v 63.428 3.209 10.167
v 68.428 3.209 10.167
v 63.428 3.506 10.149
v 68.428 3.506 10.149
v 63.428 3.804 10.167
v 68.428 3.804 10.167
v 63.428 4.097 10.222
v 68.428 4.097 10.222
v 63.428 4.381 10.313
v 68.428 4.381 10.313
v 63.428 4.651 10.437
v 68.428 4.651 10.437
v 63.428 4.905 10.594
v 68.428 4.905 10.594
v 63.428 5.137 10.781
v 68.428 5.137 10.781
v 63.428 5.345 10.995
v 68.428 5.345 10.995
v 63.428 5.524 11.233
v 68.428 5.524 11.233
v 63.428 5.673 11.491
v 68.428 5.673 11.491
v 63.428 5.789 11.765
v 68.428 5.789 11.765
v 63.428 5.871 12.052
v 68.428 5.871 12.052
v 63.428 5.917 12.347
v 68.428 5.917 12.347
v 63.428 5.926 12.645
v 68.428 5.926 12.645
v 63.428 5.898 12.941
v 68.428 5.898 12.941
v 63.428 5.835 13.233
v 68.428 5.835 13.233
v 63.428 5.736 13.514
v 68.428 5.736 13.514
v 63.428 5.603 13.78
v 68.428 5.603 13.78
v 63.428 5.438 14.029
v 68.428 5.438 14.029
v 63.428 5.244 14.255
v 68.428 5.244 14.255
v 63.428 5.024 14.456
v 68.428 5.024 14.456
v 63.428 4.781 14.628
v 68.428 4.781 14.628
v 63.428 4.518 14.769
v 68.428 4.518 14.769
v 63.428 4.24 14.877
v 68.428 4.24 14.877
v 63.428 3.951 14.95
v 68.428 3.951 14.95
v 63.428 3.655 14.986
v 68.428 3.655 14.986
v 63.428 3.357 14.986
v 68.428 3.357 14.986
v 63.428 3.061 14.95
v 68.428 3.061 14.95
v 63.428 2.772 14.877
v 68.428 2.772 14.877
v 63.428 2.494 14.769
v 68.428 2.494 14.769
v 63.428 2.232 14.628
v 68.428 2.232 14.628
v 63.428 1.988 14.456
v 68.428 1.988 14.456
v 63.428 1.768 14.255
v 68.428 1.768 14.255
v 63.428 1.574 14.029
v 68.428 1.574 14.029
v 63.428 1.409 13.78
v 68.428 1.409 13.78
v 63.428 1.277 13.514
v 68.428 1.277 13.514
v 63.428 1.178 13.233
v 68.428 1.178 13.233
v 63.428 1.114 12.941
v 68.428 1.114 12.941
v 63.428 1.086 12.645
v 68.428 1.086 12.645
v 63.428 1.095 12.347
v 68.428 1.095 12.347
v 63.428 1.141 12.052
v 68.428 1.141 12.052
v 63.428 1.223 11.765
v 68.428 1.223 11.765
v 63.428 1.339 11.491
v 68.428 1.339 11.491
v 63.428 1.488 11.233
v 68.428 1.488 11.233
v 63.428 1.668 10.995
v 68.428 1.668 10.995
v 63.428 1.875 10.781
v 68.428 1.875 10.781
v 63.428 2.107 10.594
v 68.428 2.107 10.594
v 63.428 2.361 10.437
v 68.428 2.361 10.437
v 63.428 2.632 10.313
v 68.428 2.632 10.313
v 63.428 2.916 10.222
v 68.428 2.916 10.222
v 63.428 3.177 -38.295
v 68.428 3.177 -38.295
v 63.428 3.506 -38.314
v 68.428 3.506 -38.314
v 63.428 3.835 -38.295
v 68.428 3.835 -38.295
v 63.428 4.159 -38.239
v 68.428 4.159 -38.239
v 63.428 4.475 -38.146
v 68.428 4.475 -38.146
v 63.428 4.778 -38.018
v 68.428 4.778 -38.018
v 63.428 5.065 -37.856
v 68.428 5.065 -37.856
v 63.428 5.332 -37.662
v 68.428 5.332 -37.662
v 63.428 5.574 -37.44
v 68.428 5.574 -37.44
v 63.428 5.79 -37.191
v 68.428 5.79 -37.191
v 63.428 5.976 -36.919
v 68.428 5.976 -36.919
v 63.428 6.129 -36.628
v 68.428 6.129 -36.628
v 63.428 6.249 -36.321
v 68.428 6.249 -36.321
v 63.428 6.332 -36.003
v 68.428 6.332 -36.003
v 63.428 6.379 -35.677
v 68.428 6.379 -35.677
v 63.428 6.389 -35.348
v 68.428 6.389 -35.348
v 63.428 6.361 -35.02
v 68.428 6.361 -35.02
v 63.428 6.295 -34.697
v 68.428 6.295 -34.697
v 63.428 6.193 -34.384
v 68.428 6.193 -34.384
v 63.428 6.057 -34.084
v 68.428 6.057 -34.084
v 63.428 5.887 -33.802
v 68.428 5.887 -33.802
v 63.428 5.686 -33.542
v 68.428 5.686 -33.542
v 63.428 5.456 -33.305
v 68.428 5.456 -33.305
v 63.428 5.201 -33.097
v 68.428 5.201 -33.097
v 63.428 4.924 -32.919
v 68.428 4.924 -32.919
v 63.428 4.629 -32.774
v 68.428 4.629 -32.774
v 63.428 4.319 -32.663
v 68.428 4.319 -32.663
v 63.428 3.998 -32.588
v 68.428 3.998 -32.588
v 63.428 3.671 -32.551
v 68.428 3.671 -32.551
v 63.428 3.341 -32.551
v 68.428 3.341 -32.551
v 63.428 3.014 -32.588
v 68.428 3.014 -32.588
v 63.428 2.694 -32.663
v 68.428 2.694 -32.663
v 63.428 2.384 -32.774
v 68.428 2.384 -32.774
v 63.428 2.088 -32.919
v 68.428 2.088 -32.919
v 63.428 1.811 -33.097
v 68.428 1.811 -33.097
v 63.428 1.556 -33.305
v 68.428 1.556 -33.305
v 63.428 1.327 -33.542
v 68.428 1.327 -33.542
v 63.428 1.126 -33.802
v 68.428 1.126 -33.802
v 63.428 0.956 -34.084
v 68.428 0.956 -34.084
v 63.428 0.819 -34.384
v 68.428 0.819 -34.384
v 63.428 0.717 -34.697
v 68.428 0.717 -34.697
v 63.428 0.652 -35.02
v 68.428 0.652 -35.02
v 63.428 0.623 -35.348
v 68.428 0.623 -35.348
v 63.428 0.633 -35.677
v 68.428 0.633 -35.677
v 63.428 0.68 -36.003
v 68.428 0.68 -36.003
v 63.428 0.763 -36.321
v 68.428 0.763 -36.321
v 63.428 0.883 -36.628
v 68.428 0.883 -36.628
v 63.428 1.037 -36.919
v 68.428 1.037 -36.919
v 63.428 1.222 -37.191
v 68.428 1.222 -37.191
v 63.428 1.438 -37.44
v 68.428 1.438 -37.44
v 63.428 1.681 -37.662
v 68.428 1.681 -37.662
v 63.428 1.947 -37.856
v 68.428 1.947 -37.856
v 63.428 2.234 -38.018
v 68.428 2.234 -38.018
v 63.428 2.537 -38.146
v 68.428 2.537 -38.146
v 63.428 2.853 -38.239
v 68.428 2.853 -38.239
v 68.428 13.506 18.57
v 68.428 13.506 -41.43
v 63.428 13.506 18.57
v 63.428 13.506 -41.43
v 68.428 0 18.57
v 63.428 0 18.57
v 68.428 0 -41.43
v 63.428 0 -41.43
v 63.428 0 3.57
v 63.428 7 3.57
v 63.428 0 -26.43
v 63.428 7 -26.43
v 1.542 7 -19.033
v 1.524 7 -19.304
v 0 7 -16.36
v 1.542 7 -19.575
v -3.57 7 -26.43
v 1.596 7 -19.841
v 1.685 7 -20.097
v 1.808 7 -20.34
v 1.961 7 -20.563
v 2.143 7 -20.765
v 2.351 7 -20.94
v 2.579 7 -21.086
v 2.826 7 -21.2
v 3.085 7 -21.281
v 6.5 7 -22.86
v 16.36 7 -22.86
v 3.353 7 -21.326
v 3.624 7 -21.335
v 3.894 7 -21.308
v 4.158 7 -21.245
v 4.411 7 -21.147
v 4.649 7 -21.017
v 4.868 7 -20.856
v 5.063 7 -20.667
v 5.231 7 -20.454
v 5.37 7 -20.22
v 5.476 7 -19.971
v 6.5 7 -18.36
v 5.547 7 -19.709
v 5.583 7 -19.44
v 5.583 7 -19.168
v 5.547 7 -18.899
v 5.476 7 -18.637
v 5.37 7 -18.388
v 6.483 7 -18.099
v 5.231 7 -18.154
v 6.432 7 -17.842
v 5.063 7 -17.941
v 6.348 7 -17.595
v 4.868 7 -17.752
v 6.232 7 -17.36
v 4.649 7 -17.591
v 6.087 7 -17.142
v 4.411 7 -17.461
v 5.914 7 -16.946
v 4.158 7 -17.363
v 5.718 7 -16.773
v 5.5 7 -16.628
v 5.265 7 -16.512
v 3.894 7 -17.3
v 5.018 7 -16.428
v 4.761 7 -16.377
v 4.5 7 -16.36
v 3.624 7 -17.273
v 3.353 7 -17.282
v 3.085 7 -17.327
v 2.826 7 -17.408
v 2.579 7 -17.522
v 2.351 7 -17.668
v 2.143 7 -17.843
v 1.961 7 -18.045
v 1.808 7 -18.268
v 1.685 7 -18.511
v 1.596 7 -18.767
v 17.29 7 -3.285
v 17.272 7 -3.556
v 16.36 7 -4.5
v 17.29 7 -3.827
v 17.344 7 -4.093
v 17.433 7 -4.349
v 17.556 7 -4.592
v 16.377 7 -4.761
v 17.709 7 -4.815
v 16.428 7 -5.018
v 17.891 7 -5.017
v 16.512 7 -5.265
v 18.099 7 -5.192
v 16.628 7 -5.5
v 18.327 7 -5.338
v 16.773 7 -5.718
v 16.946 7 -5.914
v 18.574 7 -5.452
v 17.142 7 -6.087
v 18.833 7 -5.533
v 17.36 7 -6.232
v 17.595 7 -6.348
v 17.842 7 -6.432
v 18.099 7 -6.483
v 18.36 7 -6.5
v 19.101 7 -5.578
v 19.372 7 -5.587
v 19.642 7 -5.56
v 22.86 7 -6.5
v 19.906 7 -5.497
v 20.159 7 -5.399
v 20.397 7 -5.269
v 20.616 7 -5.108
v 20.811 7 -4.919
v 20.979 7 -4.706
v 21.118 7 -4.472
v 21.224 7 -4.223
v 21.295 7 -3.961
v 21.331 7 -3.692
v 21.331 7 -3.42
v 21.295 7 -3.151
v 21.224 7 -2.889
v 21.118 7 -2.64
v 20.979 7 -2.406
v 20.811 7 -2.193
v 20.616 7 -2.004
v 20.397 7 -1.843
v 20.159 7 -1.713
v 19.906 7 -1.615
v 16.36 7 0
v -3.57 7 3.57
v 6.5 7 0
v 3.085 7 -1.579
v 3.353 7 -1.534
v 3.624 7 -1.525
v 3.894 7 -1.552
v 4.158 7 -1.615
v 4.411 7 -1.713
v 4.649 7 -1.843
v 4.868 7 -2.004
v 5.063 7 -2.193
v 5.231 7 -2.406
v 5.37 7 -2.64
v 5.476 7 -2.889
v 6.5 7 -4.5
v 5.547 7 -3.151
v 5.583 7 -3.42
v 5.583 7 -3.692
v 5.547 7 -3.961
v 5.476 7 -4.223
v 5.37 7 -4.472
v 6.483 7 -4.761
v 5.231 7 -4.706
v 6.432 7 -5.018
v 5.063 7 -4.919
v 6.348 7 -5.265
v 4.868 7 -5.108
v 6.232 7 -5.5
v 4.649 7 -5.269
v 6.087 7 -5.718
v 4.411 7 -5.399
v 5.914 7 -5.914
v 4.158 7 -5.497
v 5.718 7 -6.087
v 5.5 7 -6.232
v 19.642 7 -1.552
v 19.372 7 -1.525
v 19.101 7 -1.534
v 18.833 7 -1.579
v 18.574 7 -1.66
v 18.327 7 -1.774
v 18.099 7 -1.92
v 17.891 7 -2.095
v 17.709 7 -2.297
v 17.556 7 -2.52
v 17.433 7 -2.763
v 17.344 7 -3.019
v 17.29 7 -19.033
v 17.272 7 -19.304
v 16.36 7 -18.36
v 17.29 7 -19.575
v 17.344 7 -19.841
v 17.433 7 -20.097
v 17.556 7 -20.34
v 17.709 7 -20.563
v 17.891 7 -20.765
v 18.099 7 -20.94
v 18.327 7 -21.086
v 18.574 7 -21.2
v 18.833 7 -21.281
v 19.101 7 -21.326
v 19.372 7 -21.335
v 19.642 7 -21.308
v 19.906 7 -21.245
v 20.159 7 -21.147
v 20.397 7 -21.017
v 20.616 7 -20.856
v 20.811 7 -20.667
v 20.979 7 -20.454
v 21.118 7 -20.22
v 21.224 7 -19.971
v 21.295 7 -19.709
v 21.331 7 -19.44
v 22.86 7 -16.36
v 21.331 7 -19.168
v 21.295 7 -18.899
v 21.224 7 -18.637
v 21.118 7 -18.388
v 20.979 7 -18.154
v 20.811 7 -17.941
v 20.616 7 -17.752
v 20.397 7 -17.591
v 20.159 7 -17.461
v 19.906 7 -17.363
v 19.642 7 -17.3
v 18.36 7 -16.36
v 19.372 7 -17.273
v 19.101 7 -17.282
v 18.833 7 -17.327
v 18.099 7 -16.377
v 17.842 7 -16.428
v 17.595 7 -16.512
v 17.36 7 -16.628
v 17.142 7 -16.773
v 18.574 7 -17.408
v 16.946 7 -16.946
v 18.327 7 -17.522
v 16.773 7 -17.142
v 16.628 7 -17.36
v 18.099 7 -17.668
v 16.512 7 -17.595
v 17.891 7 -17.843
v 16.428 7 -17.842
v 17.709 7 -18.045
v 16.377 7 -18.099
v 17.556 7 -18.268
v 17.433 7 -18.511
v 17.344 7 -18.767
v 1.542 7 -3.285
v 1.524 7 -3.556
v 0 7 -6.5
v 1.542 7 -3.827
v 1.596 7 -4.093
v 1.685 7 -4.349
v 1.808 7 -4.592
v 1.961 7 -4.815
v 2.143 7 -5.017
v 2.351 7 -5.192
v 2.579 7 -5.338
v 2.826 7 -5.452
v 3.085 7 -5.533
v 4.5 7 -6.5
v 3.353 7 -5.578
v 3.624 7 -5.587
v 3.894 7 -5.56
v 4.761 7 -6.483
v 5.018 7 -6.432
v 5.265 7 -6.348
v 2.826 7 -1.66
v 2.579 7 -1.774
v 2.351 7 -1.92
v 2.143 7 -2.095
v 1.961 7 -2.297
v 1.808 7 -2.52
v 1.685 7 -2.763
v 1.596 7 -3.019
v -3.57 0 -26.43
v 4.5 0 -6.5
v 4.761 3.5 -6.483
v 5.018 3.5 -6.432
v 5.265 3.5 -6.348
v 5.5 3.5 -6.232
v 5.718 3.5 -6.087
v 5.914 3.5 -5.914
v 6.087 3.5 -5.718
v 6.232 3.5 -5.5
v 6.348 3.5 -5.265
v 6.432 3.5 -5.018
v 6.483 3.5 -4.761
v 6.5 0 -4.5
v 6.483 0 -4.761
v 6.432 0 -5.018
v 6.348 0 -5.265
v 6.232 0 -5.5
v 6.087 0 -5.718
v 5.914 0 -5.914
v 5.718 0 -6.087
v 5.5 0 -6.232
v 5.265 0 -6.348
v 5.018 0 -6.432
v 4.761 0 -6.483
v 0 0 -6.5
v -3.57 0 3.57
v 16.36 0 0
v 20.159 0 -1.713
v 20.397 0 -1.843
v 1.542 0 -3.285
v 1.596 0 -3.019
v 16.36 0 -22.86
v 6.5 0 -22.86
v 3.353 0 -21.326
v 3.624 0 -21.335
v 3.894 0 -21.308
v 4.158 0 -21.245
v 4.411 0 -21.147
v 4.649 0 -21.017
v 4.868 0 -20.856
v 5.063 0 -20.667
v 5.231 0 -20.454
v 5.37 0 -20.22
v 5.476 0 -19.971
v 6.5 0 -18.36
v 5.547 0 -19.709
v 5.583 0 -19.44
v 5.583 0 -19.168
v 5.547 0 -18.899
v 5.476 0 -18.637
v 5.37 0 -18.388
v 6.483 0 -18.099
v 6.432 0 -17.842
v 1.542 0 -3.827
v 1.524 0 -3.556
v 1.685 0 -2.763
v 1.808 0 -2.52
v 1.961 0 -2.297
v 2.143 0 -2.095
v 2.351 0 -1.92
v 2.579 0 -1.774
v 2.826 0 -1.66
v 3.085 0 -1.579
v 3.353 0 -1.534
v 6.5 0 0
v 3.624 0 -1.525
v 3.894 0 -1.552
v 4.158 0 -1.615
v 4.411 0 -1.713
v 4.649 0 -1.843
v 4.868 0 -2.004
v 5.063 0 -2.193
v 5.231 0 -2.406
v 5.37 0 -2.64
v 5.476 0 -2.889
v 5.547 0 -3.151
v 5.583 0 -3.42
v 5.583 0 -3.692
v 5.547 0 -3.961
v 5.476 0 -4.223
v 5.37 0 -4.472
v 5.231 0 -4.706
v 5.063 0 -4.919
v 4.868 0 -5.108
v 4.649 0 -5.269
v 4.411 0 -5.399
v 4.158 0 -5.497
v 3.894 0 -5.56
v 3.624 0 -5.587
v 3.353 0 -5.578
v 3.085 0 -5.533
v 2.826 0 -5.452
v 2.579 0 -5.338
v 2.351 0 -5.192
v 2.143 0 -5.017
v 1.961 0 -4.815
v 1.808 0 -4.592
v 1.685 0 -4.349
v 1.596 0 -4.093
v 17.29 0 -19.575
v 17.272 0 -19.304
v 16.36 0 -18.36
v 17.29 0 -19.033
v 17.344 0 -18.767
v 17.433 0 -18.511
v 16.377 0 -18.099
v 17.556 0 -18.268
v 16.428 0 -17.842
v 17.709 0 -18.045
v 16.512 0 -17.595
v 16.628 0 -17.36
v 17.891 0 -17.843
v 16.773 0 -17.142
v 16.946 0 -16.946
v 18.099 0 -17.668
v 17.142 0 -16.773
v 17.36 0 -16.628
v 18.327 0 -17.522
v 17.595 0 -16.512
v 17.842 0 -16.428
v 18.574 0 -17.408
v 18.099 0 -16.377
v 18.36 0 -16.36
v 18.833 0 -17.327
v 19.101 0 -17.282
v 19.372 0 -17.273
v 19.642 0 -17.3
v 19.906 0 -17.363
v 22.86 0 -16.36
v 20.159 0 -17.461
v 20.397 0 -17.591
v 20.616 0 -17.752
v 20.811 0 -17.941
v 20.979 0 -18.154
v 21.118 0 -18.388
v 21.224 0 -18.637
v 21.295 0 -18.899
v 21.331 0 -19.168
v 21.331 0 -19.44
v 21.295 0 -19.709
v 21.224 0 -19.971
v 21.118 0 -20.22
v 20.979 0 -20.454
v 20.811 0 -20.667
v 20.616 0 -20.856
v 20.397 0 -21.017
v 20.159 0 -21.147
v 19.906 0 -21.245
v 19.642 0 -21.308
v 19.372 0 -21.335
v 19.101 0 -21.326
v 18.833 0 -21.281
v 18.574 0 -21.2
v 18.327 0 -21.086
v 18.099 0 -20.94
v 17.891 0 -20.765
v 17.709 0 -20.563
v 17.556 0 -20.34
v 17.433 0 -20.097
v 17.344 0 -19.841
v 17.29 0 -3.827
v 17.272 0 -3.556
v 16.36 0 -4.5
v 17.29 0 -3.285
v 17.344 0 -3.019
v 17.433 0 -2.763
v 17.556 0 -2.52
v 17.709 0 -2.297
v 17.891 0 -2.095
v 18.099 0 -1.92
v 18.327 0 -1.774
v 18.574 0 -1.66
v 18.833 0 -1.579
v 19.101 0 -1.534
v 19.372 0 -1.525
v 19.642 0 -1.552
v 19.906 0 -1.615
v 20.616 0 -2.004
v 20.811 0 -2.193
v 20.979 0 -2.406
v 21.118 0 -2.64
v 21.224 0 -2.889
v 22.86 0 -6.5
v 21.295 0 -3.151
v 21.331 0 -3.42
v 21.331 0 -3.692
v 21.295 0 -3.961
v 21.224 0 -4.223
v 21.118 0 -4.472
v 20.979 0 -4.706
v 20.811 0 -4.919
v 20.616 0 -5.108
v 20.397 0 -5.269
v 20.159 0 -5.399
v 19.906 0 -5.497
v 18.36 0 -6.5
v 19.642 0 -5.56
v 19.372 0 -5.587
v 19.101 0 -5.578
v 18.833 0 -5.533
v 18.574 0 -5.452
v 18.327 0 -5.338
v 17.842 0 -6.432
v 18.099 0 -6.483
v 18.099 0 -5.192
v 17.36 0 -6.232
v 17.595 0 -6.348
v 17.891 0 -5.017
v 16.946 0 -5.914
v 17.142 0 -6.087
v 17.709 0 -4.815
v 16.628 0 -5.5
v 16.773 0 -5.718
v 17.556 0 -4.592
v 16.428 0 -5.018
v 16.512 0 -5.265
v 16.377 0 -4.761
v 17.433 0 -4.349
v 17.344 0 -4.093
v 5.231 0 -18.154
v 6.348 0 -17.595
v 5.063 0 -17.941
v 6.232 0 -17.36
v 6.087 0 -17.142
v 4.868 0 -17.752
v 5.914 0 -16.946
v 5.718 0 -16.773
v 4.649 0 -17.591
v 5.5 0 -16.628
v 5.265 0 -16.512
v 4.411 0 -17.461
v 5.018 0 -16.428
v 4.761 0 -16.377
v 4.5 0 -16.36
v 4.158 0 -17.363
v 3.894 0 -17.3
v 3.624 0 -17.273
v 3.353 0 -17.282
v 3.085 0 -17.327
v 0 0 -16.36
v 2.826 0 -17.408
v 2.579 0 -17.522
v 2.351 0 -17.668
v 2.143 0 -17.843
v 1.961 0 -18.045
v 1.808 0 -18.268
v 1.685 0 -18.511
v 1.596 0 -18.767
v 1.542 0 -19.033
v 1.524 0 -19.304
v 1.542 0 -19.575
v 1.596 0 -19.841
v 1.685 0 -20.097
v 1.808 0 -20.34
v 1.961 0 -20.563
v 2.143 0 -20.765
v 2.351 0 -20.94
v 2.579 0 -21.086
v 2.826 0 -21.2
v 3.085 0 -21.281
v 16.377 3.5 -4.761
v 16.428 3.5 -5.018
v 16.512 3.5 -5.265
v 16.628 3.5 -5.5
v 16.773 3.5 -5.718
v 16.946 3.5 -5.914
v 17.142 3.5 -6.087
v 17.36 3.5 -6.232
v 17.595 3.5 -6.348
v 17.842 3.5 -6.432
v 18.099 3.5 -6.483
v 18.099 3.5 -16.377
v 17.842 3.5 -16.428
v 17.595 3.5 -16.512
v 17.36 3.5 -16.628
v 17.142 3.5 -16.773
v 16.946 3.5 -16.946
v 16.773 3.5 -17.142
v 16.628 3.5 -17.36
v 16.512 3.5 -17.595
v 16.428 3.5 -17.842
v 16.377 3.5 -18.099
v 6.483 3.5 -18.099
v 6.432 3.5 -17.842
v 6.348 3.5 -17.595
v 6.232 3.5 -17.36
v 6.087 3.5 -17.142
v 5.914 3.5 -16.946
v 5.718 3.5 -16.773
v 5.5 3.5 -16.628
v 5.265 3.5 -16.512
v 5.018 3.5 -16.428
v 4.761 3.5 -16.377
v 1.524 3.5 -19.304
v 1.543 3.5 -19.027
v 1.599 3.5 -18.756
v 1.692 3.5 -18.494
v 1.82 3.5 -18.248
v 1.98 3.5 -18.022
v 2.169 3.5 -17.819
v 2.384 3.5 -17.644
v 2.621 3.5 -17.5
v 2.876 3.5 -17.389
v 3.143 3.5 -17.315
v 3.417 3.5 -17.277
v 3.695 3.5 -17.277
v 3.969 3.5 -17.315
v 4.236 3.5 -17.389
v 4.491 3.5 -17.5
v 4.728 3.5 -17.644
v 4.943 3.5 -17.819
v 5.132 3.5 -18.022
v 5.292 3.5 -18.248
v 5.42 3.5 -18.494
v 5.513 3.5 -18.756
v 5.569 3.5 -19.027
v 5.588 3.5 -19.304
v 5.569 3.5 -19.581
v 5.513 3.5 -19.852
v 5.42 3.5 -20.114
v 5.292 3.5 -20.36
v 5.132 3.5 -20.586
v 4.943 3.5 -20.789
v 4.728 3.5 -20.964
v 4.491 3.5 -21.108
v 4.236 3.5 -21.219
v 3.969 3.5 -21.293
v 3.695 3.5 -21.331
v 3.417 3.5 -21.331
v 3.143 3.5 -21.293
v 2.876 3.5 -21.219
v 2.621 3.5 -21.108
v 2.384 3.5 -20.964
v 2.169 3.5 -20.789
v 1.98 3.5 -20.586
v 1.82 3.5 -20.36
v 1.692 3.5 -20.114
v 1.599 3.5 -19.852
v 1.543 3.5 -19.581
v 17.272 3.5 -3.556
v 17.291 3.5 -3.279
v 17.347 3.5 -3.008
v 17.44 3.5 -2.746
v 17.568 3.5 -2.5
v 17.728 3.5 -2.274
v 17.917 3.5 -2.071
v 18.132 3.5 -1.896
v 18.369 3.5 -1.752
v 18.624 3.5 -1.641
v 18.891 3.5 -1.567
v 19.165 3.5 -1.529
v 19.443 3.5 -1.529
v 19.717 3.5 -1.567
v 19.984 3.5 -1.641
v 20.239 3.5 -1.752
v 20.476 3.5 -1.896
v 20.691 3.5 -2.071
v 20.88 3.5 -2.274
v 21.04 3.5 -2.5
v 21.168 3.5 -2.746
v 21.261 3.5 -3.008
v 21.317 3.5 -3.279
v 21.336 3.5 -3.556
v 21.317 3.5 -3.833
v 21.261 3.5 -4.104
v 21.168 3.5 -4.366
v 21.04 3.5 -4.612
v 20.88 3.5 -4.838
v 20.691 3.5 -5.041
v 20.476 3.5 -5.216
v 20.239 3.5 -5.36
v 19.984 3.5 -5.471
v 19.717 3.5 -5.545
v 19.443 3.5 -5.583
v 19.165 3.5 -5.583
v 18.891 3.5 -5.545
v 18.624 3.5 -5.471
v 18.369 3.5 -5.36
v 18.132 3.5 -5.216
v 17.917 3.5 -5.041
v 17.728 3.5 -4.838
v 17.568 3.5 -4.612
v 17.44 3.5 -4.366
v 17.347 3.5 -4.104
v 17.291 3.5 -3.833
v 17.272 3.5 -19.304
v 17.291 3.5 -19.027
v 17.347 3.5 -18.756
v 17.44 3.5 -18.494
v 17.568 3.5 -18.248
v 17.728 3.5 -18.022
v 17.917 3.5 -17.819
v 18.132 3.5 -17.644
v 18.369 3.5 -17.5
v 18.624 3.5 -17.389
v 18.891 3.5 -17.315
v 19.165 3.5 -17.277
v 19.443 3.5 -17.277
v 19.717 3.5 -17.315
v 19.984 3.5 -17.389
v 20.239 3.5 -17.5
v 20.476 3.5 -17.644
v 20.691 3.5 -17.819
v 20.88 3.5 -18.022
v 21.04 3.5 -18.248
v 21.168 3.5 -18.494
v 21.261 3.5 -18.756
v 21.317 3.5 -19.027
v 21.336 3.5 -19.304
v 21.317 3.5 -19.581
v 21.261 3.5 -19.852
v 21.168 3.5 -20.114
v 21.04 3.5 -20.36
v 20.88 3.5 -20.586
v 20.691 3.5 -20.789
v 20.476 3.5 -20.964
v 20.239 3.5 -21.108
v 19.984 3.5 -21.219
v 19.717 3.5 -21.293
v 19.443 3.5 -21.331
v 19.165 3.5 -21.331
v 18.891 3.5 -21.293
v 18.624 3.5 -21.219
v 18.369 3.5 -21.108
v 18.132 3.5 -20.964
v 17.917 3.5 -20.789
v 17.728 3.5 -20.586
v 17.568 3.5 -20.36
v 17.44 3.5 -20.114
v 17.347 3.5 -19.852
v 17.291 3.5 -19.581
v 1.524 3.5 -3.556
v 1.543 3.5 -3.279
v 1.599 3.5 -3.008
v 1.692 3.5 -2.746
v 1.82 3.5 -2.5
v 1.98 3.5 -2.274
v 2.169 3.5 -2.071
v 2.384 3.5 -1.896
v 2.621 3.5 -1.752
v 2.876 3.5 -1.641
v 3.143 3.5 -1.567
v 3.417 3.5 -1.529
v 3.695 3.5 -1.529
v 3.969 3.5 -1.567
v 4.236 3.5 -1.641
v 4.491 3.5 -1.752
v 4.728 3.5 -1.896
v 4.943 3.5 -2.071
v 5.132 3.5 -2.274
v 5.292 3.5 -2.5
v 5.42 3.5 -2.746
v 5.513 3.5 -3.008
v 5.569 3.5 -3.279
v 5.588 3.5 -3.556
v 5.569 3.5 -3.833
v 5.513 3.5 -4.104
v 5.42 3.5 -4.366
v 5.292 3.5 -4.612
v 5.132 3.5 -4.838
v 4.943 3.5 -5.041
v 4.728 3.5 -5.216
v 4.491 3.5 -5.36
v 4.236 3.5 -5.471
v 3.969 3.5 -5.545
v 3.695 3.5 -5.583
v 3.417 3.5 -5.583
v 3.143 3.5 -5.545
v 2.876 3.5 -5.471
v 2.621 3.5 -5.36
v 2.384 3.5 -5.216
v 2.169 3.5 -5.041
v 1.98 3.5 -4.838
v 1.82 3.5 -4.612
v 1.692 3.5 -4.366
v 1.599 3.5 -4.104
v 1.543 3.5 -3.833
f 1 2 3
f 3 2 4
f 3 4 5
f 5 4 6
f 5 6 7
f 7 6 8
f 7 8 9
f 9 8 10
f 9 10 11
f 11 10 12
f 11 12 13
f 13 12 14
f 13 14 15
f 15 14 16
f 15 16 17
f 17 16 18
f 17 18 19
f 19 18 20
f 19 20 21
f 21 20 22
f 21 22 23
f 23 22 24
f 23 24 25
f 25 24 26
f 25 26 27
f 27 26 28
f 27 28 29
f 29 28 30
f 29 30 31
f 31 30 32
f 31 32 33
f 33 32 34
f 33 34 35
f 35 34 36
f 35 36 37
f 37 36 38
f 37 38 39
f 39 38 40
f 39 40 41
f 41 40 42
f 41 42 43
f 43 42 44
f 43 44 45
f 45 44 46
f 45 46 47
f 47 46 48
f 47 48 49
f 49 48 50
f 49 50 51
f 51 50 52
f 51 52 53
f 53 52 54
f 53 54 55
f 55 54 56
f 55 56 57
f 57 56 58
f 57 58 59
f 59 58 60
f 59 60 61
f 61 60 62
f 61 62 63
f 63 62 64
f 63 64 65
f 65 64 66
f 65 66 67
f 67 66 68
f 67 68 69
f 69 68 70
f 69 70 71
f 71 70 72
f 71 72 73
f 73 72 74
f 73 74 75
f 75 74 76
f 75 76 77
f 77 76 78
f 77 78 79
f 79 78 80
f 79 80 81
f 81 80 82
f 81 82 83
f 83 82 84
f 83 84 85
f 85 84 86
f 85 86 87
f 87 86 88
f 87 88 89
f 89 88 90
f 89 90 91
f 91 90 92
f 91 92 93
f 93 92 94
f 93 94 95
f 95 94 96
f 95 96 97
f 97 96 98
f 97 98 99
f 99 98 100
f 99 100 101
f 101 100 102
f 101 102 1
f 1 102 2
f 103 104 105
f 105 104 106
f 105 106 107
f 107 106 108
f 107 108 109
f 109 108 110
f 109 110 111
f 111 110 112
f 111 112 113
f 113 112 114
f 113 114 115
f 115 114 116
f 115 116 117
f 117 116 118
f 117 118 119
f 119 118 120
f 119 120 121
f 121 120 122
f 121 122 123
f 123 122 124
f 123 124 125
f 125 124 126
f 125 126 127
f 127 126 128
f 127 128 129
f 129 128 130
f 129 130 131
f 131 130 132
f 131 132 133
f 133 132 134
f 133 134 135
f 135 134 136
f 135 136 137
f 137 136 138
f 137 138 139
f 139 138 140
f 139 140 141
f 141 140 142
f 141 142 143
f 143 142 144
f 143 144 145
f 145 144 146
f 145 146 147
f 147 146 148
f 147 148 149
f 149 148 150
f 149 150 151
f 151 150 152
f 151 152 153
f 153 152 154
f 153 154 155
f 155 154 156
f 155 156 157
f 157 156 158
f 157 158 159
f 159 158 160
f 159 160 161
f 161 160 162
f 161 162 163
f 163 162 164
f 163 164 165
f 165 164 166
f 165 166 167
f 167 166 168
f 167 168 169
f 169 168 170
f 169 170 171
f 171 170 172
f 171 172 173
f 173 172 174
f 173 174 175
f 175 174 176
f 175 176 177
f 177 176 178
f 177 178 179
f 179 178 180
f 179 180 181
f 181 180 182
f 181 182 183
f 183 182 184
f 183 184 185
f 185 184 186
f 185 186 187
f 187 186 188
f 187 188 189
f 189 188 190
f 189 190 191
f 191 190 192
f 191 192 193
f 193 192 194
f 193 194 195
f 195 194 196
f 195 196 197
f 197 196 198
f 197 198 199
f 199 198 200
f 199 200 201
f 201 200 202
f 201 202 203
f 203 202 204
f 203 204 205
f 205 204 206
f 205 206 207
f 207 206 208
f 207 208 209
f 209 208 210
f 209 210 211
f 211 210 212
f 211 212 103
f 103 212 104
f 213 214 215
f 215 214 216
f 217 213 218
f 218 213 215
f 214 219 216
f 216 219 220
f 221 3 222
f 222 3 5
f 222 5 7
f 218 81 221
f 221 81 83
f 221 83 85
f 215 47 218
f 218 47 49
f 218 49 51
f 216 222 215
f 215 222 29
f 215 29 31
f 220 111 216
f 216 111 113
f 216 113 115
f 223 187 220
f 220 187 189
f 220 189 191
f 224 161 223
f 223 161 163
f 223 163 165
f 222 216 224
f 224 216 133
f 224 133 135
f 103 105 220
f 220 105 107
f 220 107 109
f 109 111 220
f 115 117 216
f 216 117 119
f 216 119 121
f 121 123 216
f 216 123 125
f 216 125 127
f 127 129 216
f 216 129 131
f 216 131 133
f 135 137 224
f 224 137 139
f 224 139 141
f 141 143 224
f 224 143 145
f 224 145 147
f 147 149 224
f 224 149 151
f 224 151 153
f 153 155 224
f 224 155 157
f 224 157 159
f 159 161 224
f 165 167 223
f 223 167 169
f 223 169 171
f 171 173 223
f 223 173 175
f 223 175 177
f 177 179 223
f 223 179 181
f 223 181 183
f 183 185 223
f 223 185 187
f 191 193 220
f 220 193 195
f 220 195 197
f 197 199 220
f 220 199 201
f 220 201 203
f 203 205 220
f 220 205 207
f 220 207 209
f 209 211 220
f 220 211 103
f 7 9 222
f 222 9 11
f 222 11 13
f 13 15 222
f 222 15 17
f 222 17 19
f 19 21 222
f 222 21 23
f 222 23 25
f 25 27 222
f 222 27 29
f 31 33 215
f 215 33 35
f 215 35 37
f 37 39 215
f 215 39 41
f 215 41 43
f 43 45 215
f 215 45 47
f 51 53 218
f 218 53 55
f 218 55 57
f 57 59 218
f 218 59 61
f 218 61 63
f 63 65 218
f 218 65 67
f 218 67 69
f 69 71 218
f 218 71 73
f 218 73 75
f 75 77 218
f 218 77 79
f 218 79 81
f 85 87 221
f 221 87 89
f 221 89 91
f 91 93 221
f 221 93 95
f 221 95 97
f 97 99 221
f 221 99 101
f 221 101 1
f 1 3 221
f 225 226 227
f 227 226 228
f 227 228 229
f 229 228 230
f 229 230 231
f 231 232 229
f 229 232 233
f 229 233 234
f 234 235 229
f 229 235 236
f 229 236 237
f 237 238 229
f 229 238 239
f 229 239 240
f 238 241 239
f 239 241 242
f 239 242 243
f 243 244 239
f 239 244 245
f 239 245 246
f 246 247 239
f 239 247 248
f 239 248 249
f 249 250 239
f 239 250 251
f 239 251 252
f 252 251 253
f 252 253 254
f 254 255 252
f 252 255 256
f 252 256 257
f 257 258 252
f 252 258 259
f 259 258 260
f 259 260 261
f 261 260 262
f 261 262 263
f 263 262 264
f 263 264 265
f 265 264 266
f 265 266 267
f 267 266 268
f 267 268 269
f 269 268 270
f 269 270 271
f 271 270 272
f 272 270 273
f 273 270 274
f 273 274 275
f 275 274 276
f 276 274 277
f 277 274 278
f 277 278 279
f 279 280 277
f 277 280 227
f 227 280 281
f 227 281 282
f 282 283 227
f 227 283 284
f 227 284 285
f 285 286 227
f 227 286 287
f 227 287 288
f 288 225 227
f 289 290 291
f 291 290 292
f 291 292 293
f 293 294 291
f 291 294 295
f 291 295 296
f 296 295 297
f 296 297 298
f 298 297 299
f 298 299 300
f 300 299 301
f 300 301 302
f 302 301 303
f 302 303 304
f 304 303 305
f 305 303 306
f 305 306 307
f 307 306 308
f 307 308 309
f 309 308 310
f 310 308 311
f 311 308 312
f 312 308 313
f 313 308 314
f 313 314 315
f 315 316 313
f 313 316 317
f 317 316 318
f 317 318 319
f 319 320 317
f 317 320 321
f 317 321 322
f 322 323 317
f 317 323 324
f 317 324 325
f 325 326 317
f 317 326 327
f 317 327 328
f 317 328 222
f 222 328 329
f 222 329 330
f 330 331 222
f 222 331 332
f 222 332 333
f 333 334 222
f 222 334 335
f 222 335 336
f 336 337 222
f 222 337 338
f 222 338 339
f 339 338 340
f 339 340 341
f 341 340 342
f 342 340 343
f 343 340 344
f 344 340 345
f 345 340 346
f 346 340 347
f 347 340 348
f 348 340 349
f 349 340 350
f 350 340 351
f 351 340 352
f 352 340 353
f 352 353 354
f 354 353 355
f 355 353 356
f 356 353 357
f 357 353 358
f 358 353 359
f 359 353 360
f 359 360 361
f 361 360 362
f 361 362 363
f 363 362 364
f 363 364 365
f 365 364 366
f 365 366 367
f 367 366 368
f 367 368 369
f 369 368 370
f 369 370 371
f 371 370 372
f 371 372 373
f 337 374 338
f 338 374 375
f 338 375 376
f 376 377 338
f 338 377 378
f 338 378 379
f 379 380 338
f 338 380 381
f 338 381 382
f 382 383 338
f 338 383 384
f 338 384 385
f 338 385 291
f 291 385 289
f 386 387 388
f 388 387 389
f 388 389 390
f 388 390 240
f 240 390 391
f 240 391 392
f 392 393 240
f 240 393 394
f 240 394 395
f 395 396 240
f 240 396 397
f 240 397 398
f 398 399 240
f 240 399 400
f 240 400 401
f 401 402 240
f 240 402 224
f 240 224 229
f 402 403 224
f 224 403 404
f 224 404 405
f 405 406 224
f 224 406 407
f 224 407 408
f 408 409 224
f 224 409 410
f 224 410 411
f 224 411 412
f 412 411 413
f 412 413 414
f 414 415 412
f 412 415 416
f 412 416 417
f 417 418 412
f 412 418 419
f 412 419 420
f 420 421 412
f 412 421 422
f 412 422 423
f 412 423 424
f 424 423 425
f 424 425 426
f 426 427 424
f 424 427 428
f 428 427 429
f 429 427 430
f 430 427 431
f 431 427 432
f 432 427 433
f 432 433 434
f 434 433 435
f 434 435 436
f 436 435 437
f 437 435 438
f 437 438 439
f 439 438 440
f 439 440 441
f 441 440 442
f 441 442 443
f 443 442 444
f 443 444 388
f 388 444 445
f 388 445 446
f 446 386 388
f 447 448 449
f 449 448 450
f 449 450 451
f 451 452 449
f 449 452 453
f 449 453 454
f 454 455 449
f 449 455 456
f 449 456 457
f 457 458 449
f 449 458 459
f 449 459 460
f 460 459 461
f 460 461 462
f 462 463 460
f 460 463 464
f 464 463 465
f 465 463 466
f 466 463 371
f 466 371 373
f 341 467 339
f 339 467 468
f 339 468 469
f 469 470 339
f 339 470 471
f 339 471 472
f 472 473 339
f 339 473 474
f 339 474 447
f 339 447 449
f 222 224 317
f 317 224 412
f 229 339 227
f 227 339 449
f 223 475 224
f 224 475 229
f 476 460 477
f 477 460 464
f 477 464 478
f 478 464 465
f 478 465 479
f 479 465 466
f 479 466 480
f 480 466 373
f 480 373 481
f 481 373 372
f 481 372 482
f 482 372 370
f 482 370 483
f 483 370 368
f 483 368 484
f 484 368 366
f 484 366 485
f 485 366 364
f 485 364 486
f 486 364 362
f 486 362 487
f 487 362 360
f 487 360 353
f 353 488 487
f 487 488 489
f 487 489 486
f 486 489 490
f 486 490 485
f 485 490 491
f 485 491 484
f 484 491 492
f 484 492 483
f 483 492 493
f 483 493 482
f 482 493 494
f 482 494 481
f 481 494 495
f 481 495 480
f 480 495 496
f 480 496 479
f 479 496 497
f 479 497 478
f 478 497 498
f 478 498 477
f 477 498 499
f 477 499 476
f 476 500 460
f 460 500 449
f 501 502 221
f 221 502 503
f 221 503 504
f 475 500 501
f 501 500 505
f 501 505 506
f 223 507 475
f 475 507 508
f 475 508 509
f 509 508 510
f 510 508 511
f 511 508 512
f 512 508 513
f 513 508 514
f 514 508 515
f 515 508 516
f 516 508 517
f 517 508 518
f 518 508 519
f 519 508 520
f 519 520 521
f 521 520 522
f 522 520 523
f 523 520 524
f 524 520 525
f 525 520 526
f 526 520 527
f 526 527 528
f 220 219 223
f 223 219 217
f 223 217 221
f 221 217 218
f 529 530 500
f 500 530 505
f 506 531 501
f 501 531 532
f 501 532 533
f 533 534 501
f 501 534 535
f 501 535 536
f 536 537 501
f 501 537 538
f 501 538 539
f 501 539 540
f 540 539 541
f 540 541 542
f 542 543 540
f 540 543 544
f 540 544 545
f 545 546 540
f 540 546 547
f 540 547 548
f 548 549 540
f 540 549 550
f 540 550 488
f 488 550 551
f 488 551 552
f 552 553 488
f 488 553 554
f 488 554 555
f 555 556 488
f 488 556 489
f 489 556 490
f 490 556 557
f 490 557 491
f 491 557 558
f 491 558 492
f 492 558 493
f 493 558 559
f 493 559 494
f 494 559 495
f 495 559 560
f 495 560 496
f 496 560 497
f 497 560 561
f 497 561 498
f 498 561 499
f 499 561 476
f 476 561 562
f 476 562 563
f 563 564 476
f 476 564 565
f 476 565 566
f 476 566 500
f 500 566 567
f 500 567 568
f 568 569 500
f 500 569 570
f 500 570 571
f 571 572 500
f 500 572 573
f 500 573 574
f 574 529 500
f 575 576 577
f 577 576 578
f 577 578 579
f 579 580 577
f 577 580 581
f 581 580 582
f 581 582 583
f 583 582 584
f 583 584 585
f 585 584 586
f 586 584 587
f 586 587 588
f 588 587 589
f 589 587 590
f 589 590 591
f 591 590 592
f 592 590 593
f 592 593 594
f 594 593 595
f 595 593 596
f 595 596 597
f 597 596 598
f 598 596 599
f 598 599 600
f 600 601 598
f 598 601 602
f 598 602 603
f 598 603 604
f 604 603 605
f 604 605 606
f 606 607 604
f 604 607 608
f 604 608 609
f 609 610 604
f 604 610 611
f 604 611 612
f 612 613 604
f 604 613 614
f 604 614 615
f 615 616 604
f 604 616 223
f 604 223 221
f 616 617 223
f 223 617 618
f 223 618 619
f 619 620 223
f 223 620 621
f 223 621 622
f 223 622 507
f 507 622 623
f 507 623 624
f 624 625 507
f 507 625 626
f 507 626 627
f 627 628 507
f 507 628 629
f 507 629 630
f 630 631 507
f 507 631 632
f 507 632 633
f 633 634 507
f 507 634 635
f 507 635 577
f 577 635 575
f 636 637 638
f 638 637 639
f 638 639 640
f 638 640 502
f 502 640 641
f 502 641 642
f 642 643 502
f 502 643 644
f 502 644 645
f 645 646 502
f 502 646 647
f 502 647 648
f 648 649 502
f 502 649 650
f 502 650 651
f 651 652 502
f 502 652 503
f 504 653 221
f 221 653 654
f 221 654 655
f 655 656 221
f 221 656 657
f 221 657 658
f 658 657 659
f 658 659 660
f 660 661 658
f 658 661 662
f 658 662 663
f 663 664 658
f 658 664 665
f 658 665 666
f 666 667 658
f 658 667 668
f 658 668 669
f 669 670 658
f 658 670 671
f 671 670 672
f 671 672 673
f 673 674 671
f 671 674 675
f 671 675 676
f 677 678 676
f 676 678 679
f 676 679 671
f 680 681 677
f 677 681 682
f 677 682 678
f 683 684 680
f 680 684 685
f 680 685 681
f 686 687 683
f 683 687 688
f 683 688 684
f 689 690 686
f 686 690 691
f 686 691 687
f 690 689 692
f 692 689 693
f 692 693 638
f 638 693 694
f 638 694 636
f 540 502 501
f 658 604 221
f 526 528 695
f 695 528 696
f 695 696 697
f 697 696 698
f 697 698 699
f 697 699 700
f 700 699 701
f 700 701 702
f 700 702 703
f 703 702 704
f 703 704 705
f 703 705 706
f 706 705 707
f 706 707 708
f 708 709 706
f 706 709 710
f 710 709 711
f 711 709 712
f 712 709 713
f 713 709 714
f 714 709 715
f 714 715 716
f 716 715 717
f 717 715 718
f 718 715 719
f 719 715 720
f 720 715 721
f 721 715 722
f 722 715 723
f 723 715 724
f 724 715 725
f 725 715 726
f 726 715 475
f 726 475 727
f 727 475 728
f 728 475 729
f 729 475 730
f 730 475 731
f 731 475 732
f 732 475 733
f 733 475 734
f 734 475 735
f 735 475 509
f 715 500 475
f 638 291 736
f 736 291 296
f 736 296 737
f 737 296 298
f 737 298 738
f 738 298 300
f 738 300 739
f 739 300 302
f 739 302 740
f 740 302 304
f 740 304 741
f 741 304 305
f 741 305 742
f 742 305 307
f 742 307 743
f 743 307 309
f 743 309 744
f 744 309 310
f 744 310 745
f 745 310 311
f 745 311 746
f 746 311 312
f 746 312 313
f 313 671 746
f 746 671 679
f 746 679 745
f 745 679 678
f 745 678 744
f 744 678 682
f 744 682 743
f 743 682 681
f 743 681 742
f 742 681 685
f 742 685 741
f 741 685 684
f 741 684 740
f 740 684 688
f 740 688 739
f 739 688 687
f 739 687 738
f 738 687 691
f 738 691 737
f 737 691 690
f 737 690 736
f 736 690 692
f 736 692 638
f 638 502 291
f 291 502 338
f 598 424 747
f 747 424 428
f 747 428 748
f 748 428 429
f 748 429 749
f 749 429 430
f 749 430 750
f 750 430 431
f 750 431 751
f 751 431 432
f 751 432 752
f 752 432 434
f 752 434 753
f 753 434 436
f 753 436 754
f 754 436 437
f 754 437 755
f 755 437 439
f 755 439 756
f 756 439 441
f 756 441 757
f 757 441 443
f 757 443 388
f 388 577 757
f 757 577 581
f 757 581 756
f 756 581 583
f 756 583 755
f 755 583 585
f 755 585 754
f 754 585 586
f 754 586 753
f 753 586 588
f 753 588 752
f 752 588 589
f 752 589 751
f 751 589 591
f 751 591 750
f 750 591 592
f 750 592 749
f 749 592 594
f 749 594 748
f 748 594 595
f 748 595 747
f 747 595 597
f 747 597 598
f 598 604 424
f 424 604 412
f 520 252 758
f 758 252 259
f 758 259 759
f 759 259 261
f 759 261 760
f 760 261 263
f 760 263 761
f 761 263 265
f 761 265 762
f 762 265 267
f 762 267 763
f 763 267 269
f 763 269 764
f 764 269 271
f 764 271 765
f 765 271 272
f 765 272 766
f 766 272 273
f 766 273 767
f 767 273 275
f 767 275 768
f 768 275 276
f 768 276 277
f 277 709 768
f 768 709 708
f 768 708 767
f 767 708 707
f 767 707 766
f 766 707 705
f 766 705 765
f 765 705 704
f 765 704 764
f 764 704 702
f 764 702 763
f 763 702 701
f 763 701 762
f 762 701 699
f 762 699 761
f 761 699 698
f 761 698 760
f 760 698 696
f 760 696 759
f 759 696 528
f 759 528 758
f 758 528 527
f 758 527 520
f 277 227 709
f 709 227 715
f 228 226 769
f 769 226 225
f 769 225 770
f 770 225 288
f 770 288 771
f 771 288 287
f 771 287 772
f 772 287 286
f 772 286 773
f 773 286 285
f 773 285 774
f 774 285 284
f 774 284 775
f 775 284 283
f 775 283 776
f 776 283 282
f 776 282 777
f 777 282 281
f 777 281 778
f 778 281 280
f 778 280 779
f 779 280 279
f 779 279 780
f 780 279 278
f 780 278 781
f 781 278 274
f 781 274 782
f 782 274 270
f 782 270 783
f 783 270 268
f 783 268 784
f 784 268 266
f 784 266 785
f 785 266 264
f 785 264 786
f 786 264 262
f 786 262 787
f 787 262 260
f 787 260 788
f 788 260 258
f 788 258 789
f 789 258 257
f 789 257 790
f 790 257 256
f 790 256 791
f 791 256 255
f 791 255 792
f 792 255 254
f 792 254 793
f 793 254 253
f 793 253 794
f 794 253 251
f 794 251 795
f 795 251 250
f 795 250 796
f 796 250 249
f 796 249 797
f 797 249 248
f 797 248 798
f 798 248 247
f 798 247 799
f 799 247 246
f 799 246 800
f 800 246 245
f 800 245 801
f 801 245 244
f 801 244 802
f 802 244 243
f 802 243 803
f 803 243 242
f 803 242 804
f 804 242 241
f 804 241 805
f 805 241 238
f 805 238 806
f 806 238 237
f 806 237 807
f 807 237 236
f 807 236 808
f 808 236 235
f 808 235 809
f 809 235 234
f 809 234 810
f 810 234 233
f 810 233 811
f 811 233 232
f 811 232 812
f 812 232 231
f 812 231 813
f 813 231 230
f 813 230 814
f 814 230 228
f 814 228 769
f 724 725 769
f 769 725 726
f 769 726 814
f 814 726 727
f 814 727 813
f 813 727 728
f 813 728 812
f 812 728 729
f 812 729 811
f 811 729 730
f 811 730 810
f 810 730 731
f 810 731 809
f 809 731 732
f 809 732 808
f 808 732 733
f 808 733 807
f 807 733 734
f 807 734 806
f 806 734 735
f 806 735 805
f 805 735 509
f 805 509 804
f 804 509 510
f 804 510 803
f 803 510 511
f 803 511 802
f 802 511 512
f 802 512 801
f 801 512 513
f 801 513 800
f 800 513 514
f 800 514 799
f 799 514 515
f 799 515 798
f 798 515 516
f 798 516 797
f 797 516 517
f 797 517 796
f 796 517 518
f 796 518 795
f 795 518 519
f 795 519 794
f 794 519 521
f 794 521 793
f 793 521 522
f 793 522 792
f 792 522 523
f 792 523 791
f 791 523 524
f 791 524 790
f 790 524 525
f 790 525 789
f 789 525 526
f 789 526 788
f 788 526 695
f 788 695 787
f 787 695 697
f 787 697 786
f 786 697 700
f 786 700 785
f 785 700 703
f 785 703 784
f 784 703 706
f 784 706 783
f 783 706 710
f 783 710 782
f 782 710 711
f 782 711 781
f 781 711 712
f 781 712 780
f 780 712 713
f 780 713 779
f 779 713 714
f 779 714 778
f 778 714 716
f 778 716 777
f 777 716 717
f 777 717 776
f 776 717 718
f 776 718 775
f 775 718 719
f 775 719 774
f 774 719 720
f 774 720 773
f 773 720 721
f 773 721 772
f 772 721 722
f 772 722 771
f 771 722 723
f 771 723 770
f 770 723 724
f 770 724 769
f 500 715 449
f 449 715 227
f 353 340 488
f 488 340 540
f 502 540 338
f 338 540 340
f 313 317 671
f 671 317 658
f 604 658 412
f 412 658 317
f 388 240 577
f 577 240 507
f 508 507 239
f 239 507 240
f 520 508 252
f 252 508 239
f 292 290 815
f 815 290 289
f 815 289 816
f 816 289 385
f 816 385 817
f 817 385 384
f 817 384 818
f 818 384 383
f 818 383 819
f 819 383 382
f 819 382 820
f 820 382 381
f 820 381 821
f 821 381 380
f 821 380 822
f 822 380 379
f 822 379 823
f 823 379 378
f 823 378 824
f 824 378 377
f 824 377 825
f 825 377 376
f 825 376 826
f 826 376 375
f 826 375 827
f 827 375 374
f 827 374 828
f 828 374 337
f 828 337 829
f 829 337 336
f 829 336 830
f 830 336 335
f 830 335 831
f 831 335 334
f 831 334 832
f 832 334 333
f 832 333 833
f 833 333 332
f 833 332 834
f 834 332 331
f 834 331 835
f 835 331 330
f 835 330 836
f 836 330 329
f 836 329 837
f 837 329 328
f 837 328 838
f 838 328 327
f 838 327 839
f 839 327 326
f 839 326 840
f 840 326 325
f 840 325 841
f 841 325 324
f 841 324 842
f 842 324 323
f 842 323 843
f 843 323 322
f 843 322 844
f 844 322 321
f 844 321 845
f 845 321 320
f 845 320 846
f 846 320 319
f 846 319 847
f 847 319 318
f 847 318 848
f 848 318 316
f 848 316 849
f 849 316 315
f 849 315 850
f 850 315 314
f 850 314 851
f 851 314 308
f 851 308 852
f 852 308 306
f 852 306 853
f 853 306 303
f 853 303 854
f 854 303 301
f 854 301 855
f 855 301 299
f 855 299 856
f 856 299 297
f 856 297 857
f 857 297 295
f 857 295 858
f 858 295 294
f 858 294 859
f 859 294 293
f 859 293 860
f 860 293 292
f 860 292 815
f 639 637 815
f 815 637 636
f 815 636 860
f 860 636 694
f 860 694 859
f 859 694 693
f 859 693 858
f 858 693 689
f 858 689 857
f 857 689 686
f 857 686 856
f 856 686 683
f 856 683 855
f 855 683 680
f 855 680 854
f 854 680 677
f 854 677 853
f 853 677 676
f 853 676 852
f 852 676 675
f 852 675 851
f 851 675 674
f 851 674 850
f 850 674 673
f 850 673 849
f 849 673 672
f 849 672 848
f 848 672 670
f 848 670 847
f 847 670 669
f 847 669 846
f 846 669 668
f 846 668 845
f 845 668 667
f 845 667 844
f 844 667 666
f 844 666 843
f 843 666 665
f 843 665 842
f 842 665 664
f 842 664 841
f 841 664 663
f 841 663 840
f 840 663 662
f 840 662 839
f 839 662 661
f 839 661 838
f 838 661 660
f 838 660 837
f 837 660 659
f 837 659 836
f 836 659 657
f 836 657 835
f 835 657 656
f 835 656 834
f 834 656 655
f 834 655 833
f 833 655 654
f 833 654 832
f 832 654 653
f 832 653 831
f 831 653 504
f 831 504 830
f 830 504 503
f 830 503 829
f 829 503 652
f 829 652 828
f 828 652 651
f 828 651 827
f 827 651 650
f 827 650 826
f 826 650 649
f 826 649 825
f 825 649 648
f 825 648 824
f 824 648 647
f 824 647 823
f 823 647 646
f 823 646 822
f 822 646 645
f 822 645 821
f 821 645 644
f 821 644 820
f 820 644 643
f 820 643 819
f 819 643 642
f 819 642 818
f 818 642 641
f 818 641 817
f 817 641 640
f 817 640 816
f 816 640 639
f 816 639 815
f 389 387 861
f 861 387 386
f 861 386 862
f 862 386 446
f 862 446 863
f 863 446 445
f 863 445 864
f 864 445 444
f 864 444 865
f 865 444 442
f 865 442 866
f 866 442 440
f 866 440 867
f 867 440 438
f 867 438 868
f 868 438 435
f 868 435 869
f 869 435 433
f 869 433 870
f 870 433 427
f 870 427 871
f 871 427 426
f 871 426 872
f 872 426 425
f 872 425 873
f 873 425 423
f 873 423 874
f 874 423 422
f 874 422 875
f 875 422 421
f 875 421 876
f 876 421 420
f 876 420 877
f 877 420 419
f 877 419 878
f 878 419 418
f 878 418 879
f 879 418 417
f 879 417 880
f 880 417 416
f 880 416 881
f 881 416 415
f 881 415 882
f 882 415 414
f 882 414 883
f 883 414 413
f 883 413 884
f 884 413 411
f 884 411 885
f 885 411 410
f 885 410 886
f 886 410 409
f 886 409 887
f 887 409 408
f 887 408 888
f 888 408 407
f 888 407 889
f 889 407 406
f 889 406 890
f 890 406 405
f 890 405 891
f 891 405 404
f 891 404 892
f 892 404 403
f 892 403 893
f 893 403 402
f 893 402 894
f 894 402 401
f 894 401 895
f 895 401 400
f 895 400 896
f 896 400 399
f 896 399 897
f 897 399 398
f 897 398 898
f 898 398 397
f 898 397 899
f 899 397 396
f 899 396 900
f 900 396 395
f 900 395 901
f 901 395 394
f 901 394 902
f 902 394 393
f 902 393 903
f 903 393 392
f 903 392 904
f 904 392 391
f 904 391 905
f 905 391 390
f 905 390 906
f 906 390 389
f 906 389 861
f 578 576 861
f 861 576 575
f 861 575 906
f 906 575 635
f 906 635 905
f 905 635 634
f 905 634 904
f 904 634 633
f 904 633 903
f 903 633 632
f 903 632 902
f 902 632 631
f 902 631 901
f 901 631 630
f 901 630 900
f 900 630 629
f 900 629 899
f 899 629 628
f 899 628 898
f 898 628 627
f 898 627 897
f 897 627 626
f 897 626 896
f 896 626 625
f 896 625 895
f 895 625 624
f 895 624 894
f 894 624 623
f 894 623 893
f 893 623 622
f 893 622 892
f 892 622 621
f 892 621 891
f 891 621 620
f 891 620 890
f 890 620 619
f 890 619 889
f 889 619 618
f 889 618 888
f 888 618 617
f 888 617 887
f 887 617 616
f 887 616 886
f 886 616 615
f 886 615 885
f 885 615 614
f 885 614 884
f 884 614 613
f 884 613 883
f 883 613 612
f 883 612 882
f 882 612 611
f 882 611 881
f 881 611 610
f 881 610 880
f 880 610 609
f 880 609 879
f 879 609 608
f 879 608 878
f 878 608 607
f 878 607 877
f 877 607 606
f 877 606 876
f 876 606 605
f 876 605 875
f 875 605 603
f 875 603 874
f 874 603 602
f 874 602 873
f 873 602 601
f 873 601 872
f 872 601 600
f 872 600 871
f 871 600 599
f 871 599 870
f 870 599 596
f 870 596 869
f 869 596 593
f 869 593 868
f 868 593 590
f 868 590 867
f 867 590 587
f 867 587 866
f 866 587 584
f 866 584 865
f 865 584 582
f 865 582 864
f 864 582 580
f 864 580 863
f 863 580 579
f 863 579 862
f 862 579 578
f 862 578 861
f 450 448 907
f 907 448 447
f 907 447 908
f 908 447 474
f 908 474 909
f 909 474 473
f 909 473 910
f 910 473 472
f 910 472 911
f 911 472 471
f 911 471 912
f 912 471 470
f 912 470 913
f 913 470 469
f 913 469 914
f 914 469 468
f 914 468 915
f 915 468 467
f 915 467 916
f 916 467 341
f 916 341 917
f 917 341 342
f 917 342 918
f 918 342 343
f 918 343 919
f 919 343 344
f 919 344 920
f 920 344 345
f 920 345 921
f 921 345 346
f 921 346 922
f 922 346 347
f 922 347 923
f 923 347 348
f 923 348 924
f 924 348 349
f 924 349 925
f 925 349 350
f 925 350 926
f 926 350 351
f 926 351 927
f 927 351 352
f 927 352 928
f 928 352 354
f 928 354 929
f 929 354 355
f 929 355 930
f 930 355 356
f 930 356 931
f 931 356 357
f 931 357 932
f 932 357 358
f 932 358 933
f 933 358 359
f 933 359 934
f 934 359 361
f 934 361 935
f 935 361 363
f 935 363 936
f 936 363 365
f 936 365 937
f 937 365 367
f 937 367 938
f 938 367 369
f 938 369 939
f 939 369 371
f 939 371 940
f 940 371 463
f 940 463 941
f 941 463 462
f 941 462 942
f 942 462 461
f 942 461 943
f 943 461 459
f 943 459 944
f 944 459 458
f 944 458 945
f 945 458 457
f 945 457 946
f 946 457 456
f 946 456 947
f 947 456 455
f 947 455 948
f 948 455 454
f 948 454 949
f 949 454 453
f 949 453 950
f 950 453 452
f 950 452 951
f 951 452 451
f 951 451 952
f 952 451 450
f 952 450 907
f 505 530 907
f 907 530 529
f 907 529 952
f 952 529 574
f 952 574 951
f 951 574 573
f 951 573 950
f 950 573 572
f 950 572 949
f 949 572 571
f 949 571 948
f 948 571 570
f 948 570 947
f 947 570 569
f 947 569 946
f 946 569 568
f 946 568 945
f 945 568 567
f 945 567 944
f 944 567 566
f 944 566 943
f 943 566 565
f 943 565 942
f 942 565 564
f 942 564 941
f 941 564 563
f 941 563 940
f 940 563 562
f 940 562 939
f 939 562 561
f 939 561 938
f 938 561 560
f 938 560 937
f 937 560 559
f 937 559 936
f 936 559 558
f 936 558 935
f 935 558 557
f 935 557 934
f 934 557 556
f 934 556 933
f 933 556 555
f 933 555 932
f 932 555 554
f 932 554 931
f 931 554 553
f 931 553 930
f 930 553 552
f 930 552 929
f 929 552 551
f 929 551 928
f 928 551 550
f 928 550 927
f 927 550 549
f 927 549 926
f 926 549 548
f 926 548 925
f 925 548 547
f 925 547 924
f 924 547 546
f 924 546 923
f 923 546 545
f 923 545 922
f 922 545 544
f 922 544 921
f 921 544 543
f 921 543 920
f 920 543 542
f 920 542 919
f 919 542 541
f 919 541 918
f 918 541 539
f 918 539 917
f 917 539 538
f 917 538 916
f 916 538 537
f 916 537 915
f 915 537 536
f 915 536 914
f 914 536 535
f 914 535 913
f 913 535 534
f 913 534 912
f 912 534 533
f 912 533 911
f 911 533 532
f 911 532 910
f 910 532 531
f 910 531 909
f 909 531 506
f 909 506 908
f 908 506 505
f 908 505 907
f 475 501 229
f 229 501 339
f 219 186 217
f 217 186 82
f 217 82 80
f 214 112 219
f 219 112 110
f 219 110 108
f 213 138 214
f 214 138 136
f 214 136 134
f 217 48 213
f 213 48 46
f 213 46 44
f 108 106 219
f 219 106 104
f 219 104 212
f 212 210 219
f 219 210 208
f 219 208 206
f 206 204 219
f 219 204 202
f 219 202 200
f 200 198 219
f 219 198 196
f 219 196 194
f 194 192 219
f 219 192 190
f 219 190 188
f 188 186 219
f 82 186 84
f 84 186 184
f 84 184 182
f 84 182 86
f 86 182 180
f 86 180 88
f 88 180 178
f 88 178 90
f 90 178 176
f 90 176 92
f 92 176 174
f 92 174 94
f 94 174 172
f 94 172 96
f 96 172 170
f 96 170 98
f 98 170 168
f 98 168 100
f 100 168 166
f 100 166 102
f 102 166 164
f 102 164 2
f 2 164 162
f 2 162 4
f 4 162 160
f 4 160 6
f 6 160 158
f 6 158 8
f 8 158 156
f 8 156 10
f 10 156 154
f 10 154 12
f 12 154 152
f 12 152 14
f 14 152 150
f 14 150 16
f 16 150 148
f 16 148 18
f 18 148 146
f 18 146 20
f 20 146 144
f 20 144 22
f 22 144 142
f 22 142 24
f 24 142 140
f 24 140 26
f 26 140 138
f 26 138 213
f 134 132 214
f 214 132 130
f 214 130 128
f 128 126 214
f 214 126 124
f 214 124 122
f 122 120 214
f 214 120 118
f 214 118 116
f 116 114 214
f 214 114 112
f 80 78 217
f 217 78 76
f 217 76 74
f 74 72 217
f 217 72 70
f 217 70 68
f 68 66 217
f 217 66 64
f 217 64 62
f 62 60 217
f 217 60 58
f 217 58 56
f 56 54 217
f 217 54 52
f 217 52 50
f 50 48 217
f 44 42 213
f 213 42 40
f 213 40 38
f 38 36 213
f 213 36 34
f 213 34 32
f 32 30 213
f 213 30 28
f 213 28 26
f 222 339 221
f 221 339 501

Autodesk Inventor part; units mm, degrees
ref_plane "YZ Plane" through (0, 0, 0) normal (1, 0, 0) x (0, 1, 0)
ref_plane "XZ Plane" through (0, 0, 0) normal (0, 1, 0) x (-1, 0, 0)
ref_plane "XY Plane" through (0, 0, 0) normal (0, 0, 1) x (1, 0, 0)
sketch "Sketch1" plane through (0, 0, 0) normal (0, 1, 0) x (-1, 0, 0)
  line L0 (0, 0) -> (-22.86, 0)
  line L1 (-22.86, 0) -> (-22.86, -22.86)
  line L2 (-22.86, -22.86) -> (0, -22.86)
  line L3 (0, -22.86) -> (0, 0)
  line L4 (-22.86, -22.86) -> (-19.304, -22.86)
  line L5 (-19.304, -22.86) -> (-19.304, -19.304) construction
  line L6 (-19.304, -19.304) -> (-22.86, -19.304) construction
  line L7 (-22.86, -19.304) -> (-22.86, -22.86)
  line L8 (0, -22.86) -> (-3.556, -22.86)
  line L9 (-3.556, -22.86) -> (-3.556, -19.304) construction
  line L10 (-3.556, -19.304) -> (0, -19.304) construction
  line L11 (0, -19.304) -> (0, -22.86)
  line L12 (0, 0) -> (-3.556, 0)
  line L13 (-3.556, 0) -> (-3.556, -3.556) construction
  line L14 (-3.556, -3.556) -> (0, -3.556) construction
  line L15 (0, -3.556) -> (0, 0)
  line L16 (-22.86, 0) -> (-19.304, 0)
  line L17 (-19.304, 0) -> (-19.304, -3.556) construction
  line L18 (-19.304, -3.556) -> (-22.86, -3.556) construction
  line L19 (-22.86, -3.556) -> (-22.86, 0)
  circle A0 centre (-3.556, -19.304) radius 2.032
  circle A1 centre (-19.304, -19.304) radius 2.032
  circle A2 centre (-19.304, -3.556) radius 2.032
  circle A3 centre (-3.556, -3.556) radius 2.032
  line L20 (3.57, -26.43) -> (-26.43, -26.43)
  line L21 (-26.43, -26.43) -> (-26.43, 3.57)
  line L22 (-26.43, 3.57) -> (3.57, 3.57)
  line L23 (3.57, 3.57) -> (3.57, -26.43)
  line L24 (0, 0) -> (-6.5, 0)
  line L25 (-6.5, 0) -> (-6.5, -6.5)
  line L26 (-6.5, -6.5) -> (0, -6.5)
  line L27 (0, -6.5) -> (0, 0)
  line L28 (0, -22.86) -> (-6.5, -22.86)
  line L29 (-6.5, -22.86) -> (-6.5, -16.36)
  line L30 (-6.5, -16.36) -> (0, -16.36)
  line L31 (0, -16.36) -> (0, -22.86)
  line L32 (-22.86, -22.86) -> (-16.36, -22.86)
  line L33 (-16.36, -22.86) -> (-16.36, -16.36)
  line L34 (-16.36, -16.36) -> (-22.86, -16.36)
  line L35 (-22.86, -16.36) -> (-22.86, -22.86)
  line L36 (-22.86, 0) -> (-16.36, 0)
  line L37 (-16.36, 0) -> (-16.36, -6.5)
  line L38 (-16.36, -6.5) -> (-22.86, -6.5)
  line L39 (-22.86, -6.5) -> (-22.86, 0)
  line L40 (-26.43, 3.57) -> (-68.4276, 3.57)
  line L41 (-68.4276, 3.57) -> (-68.4276, -26.43)
  line L42 (-68.4276, -26.43) -> (-26.43, -26.43)
  line L43 (-26.43, -26.43) -> (-26.43, 3.57)
  circle A4 centre (-11.43, -11.43) radius 5
  point P0 (0, -16.36)
  point P1 (0, -6.5)
  dimension "d2" = 22.86
  dimension "d3" = 22.86
  dimension "d4" = 3.556
  dimension "d5" = 3.556
  dimension "d6" = 3.556
  dimension "d7" = 3.556
  dimension "d8" = 3.556
  dimension "d9" = 3.556
  dimension "d10" = 3.556
  dimension "d11" = 3.556
  dimension "d12" = 4.064
  dimension "d13" = 4.064
  dimension "d14" = 4.064
  dimension "d15" = 4.064
  dimension "d16" = 30
  dimension "d17" = 30
  dimension "d18" = 3.57
  dimension "d19" = 3.57
  dimension "d20" = 6.5
  dimension "d21" = 6.5
  dimension "d22" = 6.5
  dimension "d23" = 6.5
  dimension "d24" = 6.5
  dimension "d25" = 6.5
  dimension "d26" = 6.5
  dimension "d31" = 10
  dimension "d32" = 15
  dimension "d33" = 15
  dimension "d34" = 56.9976
extrude "Extrusion1" add sketch "Sketch1" along normal blind 7 contours L3 L26 L25 L0 | L37 L38 L1 L0 | L3 L2 L29 L30 | L34 L33 L2 L1 | L20 L21 L22 L23 | L42 L41 L40 L21
fillet "Fillet1" radius 2 4 edges at (6.5, 3.5, -16.36) (16.36, 3.5, -16.36) (16.36, 3.5, -6.5) (6.5, 3.5, -6.5)
sketch "Sketch4" plane through (68.4276, 0, 3.57) normal (1, 0, 0) x (0, 0, -1)
  line L0 (-15, 13.5061) -> (45, 13.5061)
  line L1 (45, 13.5061) -> (45, -6.4939)
  line L2 (45, -6.4939) -> (-15, -6.4939)
  line L3 (-15, -6.4939) -> (-15, 13.5061)
  line L4 (-15, 13.5061) -> (45, -6.4939) construction
  line L5 (45, 13.5061) -> (-15, -6.4939) construction
  line L6 (30, 0) -> (30, 7) projected
  line L7 (15, 3.5061) -> (39, 3.5061)
  circle A0 centre (39, 3.5061) radius 2.8838
  circle A1 centre (-9, 3.5061) radius 2.421
  line L8 (-15, 0) -> (45, 0)
  line L9 (45, 0) -> (45, 13.5061)
  line L10 (45, 13.5061) -> (-15, 13.5061)
  line L11 (-15, 13.5061) -> (-15, 0)
  point P0 (3.57, 0)
  dimension "d46" = 60
  dimension "d47" = 20
  dimension "d48" = 15
  dimension "d49" = 10
  dimension "d56" = 24
  dimension "d57" = 24
extrude "Extrusion4" add sketch "Sketch4" against normal blind 5 contours L0 L1 L8 L3
properties part number "as5600mount"
